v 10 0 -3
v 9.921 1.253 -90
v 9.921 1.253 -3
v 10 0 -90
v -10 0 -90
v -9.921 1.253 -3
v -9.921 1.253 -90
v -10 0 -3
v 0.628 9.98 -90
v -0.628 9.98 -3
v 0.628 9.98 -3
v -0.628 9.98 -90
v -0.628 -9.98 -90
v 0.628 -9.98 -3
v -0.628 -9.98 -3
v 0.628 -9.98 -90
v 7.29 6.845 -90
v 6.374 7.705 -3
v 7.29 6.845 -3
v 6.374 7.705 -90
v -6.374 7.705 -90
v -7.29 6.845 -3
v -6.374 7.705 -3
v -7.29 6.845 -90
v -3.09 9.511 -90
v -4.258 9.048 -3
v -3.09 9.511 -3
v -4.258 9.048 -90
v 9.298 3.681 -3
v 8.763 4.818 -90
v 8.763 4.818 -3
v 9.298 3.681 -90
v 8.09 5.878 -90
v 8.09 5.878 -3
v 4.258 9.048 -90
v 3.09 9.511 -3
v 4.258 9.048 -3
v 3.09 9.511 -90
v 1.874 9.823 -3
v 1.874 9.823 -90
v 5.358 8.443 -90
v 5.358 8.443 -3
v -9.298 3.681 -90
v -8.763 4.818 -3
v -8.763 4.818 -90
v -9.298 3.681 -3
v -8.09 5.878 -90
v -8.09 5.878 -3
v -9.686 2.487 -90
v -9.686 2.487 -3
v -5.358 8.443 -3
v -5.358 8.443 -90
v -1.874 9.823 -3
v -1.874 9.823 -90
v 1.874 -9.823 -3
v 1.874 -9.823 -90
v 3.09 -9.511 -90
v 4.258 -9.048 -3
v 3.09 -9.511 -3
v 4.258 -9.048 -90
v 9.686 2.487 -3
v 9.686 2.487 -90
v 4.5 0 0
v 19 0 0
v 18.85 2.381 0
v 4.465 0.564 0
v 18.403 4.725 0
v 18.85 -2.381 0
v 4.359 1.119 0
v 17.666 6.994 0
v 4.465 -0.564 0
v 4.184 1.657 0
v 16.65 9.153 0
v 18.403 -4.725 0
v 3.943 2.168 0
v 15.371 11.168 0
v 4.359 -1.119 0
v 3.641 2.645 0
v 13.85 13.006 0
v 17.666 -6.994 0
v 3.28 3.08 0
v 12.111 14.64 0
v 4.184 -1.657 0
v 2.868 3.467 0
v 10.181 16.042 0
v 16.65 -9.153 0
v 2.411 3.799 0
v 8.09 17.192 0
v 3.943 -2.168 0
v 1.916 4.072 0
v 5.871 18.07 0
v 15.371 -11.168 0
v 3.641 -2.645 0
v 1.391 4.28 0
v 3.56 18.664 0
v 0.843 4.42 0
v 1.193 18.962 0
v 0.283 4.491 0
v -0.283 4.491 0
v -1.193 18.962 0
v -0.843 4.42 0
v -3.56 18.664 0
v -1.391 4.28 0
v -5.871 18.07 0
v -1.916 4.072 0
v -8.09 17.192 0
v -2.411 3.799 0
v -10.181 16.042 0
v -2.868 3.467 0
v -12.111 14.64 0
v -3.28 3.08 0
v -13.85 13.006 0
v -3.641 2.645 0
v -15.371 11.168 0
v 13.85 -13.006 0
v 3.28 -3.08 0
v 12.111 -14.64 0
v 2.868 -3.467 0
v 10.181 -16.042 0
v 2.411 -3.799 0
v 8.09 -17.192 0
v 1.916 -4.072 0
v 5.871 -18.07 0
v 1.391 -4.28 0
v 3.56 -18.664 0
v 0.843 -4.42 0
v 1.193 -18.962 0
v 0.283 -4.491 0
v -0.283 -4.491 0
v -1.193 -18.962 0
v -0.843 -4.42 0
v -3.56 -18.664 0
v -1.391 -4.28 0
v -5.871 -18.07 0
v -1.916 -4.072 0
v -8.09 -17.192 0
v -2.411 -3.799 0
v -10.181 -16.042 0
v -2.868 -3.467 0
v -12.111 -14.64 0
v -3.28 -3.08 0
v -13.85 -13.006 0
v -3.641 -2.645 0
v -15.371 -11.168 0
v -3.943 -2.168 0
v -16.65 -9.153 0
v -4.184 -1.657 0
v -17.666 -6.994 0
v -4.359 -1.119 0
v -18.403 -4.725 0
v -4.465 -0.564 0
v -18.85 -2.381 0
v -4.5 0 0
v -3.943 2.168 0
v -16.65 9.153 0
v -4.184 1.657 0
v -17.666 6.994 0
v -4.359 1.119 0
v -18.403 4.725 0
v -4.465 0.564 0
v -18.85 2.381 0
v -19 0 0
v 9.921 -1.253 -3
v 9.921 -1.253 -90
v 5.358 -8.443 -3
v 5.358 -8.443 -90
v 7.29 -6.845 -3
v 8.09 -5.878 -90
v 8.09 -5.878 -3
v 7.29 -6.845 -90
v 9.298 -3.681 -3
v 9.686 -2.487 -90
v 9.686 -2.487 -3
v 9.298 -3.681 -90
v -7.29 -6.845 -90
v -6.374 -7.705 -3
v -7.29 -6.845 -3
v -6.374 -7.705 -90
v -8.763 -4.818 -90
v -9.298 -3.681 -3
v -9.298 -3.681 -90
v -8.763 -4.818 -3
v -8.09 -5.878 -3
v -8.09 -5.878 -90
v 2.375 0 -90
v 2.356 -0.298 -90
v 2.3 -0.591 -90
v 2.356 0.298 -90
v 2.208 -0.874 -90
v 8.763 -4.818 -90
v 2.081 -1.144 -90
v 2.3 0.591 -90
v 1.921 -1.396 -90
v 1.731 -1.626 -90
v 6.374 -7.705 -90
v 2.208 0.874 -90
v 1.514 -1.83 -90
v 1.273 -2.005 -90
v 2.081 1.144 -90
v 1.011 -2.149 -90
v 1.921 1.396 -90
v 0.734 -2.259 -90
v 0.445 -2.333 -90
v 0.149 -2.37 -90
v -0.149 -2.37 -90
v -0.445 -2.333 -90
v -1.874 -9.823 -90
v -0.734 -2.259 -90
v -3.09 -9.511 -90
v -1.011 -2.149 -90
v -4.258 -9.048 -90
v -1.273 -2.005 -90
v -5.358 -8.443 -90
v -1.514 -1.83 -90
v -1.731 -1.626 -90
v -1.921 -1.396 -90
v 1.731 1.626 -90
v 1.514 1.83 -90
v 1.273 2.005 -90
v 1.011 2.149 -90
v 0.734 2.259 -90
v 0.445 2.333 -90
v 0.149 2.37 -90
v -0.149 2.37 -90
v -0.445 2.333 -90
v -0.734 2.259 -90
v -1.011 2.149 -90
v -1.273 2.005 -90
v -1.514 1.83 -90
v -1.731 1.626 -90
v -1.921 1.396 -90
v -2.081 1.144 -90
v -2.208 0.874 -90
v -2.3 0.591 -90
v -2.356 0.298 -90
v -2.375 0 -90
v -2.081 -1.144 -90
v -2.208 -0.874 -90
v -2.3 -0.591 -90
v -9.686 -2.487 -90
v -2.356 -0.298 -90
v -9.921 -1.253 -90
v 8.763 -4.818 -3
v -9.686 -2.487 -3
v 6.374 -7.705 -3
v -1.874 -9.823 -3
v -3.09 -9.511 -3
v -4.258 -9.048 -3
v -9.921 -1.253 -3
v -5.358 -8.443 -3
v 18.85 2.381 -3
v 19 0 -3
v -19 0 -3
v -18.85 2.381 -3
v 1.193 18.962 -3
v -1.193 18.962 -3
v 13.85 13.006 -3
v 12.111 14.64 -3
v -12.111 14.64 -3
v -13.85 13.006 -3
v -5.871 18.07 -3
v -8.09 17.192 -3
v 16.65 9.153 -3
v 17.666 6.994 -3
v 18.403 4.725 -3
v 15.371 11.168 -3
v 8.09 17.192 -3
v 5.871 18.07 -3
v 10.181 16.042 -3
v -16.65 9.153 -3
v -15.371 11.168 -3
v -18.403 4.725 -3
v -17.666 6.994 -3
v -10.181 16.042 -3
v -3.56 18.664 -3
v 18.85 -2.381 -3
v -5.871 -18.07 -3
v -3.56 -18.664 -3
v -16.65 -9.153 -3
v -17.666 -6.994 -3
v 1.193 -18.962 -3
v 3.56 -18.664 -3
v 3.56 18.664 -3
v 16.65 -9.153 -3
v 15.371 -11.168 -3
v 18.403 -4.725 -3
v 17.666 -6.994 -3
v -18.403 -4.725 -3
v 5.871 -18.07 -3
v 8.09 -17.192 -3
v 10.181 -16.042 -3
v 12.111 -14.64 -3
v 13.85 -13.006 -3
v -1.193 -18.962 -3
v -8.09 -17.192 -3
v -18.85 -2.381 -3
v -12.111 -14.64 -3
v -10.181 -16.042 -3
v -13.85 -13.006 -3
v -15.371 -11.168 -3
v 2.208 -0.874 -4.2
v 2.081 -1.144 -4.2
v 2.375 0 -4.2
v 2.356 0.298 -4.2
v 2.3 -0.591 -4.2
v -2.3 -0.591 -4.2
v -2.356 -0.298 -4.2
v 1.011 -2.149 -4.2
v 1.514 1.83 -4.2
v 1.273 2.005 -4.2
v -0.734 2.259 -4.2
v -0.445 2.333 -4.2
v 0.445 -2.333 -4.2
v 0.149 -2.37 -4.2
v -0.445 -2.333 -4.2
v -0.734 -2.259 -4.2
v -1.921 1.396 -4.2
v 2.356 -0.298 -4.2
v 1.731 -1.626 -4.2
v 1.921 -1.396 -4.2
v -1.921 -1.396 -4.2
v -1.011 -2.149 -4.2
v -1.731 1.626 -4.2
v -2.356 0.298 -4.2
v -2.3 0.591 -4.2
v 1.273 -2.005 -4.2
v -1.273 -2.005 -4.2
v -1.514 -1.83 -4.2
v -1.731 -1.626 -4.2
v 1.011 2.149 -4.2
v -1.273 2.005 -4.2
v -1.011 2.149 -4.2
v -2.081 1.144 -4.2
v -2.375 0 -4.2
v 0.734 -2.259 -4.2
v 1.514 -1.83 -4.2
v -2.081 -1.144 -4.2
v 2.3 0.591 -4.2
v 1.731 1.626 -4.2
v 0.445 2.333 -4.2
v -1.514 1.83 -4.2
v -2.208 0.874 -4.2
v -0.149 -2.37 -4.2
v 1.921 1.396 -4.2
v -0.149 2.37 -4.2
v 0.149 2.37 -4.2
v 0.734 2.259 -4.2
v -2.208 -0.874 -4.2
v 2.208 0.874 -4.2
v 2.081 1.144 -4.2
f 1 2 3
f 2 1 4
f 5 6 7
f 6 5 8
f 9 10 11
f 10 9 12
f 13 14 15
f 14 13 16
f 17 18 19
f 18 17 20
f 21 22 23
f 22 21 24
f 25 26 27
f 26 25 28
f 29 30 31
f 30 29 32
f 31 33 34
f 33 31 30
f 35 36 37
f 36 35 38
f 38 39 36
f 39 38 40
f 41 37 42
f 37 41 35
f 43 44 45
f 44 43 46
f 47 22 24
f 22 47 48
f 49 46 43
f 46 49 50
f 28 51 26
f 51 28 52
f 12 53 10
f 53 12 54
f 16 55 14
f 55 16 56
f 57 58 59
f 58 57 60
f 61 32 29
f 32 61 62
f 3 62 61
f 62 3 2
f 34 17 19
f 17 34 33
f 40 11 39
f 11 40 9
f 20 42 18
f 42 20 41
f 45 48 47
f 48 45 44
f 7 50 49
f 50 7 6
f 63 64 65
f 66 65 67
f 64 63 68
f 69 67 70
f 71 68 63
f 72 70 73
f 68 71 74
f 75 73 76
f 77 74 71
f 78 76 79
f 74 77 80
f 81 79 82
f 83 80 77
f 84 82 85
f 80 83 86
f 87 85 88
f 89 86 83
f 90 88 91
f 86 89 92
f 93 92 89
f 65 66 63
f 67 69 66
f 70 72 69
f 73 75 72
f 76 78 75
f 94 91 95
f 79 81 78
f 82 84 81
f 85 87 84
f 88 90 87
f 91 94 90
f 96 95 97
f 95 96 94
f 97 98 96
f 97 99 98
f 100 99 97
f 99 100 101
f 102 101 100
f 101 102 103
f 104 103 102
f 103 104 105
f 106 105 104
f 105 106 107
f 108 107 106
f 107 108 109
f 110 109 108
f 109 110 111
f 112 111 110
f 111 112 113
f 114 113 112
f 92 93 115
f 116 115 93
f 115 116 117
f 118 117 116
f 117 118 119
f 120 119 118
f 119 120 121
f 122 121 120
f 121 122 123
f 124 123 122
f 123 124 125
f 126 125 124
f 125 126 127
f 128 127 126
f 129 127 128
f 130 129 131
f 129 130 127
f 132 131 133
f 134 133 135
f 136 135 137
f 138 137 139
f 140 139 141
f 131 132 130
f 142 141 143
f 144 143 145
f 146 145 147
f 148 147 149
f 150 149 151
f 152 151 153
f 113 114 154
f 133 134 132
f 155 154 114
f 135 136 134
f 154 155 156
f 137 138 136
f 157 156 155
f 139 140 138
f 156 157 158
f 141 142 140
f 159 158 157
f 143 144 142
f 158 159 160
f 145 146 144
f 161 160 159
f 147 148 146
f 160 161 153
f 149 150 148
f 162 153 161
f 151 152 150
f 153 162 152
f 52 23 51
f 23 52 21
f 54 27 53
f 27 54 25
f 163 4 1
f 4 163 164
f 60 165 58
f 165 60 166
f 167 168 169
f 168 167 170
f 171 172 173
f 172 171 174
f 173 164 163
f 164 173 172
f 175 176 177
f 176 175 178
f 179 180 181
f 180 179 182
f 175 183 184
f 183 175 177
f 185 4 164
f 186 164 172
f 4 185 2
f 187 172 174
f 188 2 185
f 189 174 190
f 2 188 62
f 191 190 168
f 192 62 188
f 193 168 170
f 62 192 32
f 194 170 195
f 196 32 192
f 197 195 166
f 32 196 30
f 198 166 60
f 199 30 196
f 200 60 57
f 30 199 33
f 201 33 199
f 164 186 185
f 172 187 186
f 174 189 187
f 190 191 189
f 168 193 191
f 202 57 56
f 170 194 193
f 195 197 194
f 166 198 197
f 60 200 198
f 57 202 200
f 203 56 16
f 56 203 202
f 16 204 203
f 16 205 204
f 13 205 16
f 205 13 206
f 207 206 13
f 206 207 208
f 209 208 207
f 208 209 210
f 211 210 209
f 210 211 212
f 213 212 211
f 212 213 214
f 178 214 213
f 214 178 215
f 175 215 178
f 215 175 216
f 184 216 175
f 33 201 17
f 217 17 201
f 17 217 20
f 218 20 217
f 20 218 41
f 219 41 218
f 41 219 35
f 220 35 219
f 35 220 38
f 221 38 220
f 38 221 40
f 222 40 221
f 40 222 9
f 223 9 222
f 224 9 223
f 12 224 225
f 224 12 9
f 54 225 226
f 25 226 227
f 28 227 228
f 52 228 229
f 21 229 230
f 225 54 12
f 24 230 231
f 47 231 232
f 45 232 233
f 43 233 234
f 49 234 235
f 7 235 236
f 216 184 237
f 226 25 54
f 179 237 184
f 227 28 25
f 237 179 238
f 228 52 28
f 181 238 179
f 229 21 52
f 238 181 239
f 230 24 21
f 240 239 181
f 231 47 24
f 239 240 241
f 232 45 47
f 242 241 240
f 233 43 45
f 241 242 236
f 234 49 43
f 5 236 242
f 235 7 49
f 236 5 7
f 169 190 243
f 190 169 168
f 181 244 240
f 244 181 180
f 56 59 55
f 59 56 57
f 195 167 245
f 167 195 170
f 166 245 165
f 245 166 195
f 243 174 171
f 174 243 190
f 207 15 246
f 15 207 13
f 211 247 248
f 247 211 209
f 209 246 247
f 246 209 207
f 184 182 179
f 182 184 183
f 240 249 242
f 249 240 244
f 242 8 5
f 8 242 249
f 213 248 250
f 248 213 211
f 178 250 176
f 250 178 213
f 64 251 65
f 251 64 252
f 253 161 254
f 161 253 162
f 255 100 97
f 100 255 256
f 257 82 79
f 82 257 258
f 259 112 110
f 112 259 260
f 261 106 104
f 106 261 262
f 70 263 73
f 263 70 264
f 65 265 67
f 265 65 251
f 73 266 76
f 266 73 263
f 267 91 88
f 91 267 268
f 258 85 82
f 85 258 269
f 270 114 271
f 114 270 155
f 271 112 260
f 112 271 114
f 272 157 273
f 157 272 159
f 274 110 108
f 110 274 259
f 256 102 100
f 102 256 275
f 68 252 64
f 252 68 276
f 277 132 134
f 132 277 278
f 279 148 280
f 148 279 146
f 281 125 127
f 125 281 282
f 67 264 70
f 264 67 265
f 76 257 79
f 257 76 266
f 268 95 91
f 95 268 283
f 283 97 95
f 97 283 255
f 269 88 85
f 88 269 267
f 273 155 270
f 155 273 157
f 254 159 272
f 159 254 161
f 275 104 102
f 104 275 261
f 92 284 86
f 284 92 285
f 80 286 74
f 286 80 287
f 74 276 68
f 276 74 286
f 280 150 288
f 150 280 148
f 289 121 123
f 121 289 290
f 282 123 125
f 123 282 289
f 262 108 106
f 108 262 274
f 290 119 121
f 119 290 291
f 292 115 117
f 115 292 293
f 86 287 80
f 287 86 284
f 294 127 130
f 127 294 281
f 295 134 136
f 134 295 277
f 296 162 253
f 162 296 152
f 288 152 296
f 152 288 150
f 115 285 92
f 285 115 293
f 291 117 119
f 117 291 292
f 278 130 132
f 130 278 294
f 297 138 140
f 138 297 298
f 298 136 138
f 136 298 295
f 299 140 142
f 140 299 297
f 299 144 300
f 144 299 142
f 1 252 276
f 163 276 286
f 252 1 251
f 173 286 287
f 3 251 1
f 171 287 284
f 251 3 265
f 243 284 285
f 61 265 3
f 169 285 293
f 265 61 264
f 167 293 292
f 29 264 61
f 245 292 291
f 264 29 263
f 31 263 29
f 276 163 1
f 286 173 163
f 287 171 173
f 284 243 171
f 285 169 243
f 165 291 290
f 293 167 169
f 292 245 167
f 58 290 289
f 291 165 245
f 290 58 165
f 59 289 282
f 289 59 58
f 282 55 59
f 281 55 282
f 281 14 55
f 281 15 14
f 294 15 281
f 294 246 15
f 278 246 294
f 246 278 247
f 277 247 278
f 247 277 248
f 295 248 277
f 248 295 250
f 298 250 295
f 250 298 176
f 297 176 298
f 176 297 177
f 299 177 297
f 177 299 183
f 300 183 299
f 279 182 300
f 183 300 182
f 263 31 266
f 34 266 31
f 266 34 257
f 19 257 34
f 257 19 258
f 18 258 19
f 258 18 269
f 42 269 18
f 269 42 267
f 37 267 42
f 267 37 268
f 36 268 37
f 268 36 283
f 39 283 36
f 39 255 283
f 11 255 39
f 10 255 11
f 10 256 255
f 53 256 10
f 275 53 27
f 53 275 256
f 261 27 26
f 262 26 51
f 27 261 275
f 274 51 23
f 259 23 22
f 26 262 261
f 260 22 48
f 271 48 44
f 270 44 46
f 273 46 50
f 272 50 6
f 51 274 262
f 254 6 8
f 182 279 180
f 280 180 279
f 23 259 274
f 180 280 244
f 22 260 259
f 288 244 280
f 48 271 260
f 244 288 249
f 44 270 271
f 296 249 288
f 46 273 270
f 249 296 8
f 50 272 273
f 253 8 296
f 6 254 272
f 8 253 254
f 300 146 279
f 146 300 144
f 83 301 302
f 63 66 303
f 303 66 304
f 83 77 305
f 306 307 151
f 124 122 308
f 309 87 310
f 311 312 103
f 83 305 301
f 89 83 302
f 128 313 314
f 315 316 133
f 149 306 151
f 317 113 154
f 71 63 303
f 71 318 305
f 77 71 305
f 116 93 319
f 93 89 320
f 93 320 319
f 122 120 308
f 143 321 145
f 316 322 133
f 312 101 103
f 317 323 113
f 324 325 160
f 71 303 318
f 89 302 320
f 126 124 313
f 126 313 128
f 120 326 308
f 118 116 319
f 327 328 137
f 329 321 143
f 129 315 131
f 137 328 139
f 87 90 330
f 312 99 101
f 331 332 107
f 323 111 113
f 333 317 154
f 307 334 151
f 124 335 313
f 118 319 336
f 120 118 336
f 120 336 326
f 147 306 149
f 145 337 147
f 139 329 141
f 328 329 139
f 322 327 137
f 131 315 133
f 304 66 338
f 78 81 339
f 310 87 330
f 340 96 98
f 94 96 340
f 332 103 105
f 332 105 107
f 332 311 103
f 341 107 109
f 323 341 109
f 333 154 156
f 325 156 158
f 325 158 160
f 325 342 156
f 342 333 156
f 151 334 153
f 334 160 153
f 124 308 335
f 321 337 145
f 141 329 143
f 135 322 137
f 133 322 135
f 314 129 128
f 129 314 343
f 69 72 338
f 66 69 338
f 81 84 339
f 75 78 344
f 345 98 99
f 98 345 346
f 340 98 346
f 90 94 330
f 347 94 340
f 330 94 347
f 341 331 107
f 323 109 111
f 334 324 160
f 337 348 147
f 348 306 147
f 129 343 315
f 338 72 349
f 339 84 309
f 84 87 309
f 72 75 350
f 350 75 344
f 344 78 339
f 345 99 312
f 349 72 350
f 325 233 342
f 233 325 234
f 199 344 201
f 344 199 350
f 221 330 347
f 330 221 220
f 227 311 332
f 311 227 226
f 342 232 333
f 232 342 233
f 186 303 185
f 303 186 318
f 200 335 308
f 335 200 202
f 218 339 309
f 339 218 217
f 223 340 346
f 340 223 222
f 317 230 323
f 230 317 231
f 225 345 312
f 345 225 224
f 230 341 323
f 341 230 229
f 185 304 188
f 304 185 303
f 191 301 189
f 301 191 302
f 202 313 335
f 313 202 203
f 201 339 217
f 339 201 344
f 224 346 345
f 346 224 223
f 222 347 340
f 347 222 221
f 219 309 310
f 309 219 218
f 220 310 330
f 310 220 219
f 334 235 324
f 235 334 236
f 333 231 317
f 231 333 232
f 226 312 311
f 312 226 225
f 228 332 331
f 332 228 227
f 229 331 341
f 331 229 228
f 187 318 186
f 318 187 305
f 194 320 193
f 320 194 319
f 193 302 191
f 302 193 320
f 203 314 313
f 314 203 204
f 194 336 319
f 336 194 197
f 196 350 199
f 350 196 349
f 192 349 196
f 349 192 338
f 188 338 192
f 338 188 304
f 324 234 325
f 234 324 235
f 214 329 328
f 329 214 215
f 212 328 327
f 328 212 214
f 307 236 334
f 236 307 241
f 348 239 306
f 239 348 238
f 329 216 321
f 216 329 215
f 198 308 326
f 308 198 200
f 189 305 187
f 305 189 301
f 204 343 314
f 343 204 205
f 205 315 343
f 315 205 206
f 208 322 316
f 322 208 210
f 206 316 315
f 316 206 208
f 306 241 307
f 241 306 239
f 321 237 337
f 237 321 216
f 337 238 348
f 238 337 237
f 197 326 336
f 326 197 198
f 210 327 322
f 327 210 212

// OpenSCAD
$fn = 50;


difference() {
	union() {
		translate(v = [0, 0, -90.0000000000]) {
			cylinder(h = 90, r = 10.0000000000);
		}
		translate(v = [0, 0, -3.0000000000]) {
			cylinder(h = 3, r = 19.0000000000);
		}
	}
	union() {
		translate(v = [0, 0, 0]) {
			rotate(a = [0, 0, 0]) {
				difference() {
					union() {
						#translate(v = [0, 0, -90.0000000000]) {
							cylinder(h = 90, r = 2.2500000000);
						}
						#translate(v = [0, 0, -4.2000000000]) {
							cylinder(h = 4.2000000000, r1 = 2.3750000000, r2 = 4.5000000000);
						}
						#translate(v = [0, 0, -90.0000000000]) {
							cylinder(h = 90, r = 2.3750000000);
						}
						#translate(v = [0, 0, -90.0000000000]) {
							cylinder(h = 90, r = 2.2500000000);
						}
					}
					union();
				}
			}
		}
	}
}
